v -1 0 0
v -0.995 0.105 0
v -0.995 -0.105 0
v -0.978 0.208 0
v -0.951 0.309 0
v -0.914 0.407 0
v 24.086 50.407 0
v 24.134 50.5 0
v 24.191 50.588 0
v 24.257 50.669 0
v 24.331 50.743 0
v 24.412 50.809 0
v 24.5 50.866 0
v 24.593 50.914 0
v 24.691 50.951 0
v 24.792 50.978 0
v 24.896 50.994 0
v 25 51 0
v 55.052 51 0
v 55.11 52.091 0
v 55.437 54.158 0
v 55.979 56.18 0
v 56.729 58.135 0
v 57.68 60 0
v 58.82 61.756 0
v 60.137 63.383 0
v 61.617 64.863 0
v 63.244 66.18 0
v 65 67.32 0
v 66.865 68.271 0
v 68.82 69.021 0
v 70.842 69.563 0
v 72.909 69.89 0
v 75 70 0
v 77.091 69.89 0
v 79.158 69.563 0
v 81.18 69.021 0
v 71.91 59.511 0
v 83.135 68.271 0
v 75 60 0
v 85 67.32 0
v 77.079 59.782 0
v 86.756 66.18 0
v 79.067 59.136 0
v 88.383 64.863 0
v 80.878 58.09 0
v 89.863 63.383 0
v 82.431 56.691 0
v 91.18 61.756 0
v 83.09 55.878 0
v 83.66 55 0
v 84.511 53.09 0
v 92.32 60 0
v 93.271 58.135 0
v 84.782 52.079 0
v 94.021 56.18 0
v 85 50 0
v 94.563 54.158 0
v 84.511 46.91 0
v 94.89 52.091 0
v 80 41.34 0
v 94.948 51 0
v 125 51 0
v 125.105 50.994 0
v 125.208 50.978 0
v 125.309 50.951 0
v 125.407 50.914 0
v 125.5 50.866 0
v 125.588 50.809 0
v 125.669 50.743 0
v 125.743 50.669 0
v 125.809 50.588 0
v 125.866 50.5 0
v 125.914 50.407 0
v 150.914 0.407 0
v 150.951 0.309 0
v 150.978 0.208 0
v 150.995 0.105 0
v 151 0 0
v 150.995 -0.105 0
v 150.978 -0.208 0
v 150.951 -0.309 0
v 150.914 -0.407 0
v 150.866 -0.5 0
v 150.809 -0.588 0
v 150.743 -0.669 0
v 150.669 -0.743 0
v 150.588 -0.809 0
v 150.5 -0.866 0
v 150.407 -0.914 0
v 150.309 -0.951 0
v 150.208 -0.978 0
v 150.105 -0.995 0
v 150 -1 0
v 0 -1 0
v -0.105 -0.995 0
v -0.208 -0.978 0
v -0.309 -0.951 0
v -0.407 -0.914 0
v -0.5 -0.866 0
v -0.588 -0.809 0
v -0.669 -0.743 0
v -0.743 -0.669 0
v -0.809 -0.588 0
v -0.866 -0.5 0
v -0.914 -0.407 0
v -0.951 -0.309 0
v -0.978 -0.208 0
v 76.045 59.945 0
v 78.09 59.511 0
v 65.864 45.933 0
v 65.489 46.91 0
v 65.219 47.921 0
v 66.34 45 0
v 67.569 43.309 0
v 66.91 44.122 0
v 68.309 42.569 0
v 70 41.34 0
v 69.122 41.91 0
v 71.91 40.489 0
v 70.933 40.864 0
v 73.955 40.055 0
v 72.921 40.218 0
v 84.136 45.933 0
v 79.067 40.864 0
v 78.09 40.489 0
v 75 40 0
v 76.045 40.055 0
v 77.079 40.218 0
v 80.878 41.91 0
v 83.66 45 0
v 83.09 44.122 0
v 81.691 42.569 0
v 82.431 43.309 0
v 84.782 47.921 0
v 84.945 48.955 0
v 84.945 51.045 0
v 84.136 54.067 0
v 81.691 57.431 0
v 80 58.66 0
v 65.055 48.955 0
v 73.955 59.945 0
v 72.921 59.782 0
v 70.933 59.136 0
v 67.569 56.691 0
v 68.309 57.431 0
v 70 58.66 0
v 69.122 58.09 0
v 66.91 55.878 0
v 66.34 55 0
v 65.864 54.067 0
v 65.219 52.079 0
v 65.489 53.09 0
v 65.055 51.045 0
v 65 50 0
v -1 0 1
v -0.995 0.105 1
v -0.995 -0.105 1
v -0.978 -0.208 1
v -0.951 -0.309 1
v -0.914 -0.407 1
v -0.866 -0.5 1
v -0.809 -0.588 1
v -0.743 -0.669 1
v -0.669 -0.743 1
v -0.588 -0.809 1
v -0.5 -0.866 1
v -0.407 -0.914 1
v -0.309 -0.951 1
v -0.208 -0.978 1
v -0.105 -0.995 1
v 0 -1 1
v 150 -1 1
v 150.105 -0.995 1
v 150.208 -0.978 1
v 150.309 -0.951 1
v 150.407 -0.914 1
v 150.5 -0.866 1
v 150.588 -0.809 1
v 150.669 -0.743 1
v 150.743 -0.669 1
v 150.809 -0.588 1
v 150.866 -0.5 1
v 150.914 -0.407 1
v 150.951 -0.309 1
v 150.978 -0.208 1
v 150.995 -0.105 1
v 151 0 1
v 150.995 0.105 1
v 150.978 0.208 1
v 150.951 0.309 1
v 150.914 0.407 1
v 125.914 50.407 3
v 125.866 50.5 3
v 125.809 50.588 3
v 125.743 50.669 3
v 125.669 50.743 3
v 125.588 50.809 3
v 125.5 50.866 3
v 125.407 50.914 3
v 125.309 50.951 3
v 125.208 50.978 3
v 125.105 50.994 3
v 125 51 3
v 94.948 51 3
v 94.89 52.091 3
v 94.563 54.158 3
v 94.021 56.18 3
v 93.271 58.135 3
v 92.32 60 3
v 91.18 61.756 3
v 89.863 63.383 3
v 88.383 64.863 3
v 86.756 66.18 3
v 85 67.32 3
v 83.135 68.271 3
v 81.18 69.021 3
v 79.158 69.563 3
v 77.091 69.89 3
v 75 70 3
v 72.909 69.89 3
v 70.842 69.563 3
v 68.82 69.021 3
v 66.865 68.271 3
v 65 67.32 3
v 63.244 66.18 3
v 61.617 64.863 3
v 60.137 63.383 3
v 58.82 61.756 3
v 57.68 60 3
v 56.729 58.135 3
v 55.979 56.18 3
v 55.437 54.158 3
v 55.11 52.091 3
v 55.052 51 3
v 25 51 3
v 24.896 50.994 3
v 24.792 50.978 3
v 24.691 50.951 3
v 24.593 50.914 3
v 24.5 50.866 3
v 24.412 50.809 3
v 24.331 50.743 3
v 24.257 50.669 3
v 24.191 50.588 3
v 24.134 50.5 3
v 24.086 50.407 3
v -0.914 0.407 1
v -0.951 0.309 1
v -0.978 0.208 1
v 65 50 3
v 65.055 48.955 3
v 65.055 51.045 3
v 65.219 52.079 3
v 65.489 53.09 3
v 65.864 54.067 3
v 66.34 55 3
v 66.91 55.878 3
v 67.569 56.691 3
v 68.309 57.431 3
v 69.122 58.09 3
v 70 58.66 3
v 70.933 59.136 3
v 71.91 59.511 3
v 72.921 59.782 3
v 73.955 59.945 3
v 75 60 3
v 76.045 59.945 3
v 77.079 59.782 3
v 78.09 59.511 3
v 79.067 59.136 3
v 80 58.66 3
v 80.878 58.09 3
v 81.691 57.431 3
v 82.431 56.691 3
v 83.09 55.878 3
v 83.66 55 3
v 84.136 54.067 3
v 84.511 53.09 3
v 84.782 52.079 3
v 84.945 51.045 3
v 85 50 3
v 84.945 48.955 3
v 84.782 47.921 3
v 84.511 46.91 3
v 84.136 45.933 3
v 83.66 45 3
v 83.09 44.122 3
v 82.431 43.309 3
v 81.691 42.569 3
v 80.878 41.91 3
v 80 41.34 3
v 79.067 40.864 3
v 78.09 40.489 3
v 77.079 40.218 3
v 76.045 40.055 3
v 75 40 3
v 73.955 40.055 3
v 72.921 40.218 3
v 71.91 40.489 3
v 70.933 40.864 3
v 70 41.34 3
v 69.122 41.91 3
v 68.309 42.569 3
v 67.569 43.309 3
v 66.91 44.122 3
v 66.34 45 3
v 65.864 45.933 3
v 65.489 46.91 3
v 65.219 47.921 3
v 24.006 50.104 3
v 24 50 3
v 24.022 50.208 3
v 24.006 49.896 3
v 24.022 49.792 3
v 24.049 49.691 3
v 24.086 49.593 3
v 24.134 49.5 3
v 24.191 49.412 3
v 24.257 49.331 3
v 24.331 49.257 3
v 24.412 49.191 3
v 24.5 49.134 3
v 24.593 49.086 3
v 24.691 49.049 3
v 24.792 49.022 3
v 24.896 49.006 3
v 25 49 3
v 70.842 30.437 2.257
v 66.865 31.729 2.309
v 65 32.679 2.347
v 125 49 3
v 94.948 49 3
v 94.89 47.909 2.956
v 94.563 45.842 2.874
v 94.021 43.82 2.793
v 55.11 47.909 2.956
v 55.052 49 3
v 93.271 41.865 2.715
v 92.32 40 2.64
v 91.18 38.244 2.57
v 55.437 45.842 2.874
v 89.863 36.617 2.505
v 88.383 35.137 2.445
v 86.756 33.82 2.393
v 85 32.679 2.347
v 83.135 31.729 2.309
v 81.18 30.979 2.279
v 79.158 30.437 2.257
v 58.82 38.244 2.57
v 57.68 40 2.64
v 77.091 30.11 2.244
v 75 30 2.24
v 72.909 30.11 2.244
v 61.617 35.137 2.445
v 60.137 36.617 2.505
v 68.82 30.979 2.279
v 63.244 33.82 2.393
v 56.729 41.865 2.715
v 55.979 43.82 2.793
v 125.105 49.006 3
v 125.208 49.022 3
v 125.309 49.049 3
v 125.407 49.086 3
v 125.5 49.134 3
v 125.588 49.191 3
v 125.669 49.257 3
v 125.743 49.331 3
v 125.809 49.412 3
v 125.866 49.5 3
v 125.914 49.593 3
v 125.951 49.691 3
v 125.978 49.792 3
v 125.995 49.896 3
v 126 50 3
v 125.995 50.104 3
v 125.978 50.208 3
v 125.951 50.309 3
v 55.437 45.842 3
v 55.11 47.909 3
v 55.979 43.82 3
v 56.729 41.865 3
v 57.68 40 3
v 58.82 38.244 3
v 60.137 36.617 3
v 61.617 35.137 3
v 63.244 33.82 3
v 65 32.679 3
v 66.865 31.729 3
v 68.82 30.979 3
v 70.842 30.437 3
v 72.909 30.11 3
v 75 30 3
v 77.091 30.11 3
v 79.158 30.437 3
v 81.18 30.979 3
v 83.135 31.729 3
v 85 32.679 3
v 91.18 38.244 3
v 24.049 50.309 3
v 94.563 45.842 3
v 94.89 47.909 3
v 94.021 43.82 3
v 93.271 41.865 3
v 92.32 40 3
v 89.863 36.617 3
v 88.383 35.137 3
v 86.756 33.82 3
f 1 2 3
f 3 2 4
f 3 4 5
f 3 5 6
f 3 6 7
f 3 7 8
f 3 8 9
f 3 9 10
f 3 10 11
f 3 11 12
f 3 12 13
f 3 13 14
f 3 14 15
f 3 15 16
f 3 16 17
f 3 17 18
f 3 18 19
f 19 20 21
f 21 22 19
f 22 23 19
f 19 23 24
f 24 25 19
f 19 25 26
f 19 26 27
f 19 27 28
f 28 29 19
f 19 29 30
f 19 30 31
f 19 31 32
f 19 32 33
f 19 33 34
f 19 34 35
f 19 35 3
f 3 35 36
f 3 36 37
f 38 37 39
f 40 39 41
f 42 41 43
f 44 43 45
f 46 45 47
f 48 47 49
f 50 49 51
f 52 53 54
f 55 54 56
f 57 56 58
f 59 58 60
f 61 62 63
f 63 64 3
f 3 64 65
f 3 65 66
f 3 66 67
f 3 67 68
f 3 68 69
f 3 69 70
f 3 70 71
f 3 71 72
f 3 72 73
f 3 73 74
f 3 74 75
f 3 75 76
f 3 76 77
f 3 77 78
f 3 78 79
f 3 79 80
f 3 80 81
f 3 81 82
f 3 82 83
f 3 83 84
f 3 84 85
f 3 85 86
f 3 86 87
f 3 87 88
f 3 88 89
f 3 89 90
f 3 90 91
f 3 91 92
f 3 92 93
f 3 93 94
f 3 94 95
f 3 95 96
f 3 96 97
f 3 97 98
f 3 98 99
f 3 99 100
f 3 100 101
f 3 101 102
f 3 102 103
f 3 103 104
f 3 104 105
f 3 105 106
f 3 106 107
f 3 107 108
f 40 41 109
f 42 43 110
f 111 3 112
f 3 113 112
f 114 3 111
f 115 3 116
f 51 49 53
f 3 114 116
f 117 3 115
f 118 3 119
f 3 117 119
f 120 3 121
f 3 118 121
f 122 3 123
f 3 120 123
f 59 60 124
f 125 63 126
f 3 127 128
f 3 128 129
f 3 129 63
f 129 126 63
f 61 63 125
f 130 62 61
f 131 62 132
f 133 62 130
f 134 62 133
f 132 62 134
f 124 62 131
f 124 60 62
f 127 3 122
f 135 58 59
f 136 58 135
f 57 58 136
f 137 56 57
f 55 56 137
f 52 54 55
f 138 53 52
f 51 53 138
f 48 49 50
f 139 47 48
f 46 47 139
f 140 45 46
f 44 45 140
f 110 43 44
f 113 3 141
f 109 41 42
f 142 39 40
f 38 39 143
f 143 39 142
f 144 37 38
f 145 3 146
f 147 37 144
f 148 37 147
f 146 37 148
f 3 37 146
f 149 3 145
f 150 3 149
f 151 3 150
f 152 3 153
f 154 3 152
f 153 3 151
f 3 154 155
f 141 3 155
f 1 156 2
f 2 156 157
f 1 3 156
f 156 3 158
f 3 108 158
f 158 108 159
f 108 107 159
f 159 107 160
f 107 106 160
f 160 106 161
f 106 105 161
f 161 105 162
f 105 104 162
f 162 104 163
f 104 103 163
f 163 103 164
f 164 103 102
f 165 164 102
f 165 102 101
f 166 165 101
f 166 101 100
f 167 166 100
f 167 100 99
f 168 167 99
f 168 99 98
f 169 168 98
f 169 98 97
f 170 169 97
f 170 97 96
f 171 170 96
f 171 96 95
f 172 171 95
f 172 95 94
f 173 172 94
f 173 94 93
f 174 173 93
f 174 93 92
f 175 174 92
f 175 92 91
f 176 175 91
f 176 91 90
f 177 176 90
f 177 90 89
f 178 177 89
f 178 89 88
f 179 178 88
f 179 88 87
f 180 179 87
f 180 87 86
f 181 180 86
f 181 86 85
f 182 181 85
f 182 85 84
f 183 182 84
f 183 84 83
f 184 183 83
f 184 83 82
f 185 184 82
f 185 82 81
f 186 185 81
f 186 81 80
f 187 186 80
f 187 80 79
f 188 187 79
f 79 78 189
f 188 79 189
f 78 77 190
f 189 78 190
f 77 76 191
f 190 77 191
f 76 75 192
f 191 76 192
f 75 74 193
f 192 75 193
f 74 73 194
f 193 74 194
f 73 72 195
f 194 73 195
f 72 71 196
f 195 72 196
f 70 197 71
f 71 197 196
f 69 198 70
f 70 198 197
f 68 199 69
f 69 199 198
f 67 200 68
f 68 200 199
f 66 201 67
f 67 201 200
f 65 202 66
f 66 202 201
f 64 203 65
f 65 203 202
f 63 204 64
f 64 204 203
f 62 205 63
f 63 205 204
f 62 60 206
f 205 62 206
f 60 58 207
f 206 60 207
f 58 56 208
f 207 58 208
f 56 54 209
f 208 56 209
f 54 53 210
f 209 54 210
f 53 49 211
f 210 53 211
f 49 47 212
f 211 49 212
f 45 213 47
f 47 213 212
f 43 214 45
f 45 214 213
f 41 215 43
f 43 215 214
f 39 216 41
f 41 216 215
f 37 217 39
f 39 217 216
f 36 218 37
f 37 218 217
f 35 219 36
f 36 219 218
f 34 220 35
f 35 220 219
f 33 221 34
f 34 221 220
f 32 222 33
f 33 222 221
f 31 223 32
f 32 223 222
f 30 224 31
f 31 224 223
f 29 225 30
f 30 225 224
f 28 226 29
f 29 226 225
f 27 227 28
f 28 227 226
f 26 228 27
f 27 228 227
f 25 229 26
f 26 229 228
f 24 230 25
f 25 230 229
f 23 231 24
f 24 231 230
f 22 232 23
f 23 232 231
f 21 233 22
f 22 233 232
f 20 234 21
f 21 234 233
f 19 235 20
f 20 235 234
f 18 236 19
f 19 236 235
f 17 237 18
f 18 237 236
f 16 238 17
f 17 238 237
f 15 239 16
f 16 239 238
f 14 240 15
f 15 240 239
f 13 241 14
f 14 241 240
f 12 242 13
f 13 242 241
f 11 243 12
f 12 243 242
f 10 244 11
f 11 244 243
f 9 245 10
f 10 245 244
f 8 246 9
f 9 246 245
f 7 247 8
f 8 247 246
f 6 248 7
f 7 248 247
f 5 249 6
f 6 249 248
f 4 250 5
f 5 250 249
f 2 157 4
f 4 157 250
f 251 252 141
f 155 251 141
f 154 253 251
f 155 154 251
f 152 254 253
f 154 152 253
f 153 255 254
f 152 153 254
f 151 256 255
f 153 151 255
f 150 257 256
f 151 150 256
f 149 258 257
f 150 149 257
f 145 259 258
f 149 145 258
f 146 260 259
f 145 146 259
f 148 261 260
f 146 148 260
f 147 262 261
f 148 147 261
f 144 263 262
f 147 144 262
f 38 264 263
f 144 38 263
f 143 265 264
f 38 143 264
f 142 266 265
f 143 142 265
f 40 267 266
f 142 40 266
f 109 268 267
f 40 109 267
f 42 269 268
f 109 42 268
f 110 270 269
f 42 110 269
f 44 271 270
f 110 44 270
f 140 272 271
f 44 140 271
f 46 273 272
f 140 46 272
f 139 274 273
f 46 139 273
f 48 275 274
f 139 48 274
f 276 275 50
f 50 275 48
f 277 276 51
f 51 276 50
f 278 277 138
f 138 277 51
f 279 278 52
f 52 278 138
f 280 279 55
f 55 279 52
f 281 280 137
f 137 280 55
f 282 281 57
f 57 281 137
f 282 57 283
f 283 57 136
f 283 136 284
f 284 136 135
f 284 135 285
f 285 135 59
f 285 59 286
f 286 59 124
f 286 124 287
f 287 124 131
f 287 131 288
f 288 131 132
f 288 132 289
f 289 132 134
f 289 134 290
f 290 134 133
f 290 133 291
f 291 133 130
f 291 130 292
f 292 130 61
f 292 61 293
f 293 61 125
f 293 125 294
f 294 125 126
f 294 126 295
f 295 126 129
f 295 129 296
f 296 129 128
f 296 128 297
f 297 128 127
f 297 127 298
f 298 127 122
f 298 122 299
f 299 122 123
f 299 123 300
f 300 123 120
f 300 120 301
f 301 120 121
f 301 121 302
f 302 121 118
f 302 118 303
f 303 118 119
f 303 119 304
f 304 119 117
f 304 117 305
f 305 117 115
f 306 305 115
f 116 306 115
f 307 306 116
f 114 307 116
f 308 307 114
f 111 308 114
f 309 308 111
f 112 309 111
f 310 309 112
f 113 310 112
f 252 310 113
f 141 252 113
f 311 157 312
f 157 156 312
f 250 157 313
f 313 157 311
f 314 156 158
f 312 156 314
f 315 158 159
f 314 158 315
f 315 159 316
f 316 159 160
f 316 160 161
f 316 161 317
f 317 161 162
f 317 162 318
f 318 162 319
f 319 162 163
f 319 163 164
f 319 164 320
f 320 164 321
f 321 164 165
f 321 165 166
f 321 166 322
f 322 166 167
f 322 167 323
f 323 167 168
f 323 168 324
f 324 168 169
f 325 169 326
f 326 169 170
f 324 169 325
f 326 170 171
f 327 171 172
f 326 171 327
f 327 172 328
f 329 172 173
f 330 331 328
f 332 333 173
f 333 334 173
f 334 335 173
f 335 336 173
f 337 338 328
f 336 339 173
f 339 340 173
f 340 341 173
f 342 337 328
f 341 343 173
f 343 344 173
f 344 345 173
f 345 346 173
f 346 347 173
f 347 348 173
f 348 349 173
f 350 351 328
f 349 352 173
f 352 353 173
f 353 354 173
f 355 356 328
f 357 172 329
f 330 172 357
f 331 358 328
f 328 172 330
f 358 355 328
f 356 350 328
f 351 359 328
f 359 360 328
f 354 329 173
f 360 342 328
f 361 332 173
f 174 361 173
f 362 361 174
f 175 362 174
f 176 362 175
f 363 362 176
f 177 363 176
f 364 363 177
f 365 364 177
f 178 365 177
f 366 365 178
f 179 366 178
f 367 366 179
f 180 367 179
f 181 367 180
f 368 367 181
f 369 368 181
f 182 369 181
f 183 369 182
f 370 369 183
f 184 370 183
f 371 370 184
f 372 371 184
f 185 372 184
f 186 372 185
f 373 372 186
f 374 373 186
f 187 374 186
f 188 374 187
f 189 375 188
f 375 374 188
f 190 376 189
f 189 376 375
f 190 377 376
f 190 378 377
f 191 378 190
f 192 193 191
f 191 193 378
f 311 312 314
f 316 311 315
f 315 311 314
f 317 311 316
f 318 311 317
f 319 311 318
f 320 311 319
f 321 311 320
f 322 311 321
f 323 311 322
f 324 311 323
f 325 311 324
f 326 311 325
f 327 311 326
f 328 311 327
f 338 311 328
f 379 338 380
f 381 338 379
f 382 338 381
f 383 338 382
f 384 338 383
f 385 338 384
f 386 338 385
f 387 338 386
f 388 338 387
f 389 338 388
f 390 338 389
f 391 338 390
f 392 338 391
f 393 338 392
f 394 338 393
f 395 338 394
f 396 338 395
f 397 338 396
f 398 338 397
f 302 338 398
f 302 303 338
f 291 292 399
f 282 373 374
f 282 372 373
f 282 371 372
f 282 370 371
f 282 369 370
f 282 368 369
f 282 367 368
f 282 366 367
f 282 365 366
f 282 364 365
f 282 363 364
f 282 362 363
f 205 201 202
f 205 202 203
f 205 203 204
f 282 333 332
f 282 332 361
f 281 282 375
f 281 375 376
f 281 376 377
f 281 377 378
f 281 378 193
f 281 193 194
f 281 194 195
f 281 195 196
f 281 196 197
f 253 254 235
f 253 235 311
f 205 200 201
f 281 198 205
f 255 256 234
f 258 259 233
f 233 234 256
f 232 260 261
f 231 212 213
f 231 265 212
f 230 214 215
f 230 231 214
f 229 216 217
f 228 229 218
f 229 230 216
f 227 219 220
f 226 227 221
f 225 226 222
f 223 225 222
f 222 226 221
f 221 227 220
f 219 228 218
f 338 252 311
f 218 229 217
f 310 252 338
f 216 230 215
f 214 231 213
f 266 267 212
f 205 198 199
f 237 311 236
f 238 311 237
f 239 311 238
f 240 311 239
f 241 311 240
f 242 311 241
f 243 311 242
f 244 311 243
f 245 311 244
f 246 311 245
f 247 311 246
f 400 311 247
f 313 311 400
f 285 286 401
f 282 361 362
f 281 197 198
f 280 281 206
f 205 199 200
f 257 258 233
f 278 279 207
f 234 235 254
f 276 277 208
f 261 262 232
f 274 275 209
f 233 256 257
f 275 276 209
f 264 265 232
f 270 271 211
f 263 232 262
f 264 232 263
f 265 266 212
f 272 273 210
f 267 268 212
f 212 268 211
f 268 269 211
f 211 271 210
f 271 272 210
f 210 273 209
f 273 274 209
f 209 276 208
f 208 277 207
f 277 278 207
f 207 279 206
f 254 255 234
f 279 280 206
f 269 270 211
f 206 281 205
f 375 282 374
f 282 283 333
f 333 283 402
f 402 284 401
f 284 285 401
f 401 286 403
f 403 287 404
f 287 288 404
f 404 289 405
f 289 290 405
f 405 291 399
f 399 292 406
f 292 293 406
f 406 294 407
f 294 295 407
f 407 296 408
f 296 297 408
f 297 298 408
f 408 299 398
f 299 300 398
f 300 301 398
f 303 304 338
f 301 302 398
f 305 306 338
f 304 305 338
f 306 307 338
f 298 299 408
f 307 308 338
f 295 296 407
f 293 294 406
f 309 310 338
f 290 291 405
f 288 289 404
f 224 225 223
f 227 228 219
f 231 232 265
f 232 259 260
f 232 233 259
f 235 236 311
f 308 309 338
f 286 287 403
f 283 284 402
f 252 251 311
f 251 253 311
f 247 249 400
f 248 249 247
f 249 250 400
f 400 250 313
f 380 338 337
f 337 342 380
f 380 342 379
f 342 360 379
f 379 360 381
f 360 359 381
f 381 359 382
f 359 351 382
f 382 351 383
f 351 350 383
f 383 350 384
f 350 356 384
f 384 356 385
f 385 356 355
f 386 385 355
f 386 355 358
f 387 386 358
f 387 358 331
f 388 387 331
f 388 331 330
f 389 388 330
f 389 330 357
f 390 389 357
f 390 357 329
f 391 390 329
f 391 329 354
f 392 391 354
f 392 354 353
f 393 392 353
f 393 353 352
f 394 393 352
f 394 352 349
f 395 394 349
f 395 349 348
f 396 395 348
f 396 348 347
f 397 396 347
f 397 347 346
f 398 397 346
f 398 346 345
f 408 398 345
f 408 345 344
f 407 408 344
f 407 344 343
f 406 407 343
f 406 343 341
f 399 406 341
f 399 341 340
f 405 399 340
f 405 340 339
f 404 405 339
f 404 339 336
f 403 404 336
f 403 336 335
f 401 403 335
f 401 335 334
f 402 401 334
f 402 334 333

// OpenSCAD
ThinThickness = 1;
ThickThickness = 3;
Length = 150;
Width = 50;
Handle = 20;
$fn = 60;


difference()
{
	union()
	{
		hull()
		{
			cylinder(r=1, h=ThinThickness);
			translate([Length, 0, 0] ) cylinder(r=1, h=ThinThickness);
			translate([Width/2, Width, 0] ) cylinder(r=1, h=ThickThickness);
			translate([Length - Width/2, Width, 0] ) cylinder(r=1, h=ThickThickness);
		}
		translate([Length/2, Width, 0] ) cylinder(r=Handle, h=ThickThickness);
	}
	translate([Length/2, Width, 0] ) cylinder(d=Handle, h=ThickThickness);
}
